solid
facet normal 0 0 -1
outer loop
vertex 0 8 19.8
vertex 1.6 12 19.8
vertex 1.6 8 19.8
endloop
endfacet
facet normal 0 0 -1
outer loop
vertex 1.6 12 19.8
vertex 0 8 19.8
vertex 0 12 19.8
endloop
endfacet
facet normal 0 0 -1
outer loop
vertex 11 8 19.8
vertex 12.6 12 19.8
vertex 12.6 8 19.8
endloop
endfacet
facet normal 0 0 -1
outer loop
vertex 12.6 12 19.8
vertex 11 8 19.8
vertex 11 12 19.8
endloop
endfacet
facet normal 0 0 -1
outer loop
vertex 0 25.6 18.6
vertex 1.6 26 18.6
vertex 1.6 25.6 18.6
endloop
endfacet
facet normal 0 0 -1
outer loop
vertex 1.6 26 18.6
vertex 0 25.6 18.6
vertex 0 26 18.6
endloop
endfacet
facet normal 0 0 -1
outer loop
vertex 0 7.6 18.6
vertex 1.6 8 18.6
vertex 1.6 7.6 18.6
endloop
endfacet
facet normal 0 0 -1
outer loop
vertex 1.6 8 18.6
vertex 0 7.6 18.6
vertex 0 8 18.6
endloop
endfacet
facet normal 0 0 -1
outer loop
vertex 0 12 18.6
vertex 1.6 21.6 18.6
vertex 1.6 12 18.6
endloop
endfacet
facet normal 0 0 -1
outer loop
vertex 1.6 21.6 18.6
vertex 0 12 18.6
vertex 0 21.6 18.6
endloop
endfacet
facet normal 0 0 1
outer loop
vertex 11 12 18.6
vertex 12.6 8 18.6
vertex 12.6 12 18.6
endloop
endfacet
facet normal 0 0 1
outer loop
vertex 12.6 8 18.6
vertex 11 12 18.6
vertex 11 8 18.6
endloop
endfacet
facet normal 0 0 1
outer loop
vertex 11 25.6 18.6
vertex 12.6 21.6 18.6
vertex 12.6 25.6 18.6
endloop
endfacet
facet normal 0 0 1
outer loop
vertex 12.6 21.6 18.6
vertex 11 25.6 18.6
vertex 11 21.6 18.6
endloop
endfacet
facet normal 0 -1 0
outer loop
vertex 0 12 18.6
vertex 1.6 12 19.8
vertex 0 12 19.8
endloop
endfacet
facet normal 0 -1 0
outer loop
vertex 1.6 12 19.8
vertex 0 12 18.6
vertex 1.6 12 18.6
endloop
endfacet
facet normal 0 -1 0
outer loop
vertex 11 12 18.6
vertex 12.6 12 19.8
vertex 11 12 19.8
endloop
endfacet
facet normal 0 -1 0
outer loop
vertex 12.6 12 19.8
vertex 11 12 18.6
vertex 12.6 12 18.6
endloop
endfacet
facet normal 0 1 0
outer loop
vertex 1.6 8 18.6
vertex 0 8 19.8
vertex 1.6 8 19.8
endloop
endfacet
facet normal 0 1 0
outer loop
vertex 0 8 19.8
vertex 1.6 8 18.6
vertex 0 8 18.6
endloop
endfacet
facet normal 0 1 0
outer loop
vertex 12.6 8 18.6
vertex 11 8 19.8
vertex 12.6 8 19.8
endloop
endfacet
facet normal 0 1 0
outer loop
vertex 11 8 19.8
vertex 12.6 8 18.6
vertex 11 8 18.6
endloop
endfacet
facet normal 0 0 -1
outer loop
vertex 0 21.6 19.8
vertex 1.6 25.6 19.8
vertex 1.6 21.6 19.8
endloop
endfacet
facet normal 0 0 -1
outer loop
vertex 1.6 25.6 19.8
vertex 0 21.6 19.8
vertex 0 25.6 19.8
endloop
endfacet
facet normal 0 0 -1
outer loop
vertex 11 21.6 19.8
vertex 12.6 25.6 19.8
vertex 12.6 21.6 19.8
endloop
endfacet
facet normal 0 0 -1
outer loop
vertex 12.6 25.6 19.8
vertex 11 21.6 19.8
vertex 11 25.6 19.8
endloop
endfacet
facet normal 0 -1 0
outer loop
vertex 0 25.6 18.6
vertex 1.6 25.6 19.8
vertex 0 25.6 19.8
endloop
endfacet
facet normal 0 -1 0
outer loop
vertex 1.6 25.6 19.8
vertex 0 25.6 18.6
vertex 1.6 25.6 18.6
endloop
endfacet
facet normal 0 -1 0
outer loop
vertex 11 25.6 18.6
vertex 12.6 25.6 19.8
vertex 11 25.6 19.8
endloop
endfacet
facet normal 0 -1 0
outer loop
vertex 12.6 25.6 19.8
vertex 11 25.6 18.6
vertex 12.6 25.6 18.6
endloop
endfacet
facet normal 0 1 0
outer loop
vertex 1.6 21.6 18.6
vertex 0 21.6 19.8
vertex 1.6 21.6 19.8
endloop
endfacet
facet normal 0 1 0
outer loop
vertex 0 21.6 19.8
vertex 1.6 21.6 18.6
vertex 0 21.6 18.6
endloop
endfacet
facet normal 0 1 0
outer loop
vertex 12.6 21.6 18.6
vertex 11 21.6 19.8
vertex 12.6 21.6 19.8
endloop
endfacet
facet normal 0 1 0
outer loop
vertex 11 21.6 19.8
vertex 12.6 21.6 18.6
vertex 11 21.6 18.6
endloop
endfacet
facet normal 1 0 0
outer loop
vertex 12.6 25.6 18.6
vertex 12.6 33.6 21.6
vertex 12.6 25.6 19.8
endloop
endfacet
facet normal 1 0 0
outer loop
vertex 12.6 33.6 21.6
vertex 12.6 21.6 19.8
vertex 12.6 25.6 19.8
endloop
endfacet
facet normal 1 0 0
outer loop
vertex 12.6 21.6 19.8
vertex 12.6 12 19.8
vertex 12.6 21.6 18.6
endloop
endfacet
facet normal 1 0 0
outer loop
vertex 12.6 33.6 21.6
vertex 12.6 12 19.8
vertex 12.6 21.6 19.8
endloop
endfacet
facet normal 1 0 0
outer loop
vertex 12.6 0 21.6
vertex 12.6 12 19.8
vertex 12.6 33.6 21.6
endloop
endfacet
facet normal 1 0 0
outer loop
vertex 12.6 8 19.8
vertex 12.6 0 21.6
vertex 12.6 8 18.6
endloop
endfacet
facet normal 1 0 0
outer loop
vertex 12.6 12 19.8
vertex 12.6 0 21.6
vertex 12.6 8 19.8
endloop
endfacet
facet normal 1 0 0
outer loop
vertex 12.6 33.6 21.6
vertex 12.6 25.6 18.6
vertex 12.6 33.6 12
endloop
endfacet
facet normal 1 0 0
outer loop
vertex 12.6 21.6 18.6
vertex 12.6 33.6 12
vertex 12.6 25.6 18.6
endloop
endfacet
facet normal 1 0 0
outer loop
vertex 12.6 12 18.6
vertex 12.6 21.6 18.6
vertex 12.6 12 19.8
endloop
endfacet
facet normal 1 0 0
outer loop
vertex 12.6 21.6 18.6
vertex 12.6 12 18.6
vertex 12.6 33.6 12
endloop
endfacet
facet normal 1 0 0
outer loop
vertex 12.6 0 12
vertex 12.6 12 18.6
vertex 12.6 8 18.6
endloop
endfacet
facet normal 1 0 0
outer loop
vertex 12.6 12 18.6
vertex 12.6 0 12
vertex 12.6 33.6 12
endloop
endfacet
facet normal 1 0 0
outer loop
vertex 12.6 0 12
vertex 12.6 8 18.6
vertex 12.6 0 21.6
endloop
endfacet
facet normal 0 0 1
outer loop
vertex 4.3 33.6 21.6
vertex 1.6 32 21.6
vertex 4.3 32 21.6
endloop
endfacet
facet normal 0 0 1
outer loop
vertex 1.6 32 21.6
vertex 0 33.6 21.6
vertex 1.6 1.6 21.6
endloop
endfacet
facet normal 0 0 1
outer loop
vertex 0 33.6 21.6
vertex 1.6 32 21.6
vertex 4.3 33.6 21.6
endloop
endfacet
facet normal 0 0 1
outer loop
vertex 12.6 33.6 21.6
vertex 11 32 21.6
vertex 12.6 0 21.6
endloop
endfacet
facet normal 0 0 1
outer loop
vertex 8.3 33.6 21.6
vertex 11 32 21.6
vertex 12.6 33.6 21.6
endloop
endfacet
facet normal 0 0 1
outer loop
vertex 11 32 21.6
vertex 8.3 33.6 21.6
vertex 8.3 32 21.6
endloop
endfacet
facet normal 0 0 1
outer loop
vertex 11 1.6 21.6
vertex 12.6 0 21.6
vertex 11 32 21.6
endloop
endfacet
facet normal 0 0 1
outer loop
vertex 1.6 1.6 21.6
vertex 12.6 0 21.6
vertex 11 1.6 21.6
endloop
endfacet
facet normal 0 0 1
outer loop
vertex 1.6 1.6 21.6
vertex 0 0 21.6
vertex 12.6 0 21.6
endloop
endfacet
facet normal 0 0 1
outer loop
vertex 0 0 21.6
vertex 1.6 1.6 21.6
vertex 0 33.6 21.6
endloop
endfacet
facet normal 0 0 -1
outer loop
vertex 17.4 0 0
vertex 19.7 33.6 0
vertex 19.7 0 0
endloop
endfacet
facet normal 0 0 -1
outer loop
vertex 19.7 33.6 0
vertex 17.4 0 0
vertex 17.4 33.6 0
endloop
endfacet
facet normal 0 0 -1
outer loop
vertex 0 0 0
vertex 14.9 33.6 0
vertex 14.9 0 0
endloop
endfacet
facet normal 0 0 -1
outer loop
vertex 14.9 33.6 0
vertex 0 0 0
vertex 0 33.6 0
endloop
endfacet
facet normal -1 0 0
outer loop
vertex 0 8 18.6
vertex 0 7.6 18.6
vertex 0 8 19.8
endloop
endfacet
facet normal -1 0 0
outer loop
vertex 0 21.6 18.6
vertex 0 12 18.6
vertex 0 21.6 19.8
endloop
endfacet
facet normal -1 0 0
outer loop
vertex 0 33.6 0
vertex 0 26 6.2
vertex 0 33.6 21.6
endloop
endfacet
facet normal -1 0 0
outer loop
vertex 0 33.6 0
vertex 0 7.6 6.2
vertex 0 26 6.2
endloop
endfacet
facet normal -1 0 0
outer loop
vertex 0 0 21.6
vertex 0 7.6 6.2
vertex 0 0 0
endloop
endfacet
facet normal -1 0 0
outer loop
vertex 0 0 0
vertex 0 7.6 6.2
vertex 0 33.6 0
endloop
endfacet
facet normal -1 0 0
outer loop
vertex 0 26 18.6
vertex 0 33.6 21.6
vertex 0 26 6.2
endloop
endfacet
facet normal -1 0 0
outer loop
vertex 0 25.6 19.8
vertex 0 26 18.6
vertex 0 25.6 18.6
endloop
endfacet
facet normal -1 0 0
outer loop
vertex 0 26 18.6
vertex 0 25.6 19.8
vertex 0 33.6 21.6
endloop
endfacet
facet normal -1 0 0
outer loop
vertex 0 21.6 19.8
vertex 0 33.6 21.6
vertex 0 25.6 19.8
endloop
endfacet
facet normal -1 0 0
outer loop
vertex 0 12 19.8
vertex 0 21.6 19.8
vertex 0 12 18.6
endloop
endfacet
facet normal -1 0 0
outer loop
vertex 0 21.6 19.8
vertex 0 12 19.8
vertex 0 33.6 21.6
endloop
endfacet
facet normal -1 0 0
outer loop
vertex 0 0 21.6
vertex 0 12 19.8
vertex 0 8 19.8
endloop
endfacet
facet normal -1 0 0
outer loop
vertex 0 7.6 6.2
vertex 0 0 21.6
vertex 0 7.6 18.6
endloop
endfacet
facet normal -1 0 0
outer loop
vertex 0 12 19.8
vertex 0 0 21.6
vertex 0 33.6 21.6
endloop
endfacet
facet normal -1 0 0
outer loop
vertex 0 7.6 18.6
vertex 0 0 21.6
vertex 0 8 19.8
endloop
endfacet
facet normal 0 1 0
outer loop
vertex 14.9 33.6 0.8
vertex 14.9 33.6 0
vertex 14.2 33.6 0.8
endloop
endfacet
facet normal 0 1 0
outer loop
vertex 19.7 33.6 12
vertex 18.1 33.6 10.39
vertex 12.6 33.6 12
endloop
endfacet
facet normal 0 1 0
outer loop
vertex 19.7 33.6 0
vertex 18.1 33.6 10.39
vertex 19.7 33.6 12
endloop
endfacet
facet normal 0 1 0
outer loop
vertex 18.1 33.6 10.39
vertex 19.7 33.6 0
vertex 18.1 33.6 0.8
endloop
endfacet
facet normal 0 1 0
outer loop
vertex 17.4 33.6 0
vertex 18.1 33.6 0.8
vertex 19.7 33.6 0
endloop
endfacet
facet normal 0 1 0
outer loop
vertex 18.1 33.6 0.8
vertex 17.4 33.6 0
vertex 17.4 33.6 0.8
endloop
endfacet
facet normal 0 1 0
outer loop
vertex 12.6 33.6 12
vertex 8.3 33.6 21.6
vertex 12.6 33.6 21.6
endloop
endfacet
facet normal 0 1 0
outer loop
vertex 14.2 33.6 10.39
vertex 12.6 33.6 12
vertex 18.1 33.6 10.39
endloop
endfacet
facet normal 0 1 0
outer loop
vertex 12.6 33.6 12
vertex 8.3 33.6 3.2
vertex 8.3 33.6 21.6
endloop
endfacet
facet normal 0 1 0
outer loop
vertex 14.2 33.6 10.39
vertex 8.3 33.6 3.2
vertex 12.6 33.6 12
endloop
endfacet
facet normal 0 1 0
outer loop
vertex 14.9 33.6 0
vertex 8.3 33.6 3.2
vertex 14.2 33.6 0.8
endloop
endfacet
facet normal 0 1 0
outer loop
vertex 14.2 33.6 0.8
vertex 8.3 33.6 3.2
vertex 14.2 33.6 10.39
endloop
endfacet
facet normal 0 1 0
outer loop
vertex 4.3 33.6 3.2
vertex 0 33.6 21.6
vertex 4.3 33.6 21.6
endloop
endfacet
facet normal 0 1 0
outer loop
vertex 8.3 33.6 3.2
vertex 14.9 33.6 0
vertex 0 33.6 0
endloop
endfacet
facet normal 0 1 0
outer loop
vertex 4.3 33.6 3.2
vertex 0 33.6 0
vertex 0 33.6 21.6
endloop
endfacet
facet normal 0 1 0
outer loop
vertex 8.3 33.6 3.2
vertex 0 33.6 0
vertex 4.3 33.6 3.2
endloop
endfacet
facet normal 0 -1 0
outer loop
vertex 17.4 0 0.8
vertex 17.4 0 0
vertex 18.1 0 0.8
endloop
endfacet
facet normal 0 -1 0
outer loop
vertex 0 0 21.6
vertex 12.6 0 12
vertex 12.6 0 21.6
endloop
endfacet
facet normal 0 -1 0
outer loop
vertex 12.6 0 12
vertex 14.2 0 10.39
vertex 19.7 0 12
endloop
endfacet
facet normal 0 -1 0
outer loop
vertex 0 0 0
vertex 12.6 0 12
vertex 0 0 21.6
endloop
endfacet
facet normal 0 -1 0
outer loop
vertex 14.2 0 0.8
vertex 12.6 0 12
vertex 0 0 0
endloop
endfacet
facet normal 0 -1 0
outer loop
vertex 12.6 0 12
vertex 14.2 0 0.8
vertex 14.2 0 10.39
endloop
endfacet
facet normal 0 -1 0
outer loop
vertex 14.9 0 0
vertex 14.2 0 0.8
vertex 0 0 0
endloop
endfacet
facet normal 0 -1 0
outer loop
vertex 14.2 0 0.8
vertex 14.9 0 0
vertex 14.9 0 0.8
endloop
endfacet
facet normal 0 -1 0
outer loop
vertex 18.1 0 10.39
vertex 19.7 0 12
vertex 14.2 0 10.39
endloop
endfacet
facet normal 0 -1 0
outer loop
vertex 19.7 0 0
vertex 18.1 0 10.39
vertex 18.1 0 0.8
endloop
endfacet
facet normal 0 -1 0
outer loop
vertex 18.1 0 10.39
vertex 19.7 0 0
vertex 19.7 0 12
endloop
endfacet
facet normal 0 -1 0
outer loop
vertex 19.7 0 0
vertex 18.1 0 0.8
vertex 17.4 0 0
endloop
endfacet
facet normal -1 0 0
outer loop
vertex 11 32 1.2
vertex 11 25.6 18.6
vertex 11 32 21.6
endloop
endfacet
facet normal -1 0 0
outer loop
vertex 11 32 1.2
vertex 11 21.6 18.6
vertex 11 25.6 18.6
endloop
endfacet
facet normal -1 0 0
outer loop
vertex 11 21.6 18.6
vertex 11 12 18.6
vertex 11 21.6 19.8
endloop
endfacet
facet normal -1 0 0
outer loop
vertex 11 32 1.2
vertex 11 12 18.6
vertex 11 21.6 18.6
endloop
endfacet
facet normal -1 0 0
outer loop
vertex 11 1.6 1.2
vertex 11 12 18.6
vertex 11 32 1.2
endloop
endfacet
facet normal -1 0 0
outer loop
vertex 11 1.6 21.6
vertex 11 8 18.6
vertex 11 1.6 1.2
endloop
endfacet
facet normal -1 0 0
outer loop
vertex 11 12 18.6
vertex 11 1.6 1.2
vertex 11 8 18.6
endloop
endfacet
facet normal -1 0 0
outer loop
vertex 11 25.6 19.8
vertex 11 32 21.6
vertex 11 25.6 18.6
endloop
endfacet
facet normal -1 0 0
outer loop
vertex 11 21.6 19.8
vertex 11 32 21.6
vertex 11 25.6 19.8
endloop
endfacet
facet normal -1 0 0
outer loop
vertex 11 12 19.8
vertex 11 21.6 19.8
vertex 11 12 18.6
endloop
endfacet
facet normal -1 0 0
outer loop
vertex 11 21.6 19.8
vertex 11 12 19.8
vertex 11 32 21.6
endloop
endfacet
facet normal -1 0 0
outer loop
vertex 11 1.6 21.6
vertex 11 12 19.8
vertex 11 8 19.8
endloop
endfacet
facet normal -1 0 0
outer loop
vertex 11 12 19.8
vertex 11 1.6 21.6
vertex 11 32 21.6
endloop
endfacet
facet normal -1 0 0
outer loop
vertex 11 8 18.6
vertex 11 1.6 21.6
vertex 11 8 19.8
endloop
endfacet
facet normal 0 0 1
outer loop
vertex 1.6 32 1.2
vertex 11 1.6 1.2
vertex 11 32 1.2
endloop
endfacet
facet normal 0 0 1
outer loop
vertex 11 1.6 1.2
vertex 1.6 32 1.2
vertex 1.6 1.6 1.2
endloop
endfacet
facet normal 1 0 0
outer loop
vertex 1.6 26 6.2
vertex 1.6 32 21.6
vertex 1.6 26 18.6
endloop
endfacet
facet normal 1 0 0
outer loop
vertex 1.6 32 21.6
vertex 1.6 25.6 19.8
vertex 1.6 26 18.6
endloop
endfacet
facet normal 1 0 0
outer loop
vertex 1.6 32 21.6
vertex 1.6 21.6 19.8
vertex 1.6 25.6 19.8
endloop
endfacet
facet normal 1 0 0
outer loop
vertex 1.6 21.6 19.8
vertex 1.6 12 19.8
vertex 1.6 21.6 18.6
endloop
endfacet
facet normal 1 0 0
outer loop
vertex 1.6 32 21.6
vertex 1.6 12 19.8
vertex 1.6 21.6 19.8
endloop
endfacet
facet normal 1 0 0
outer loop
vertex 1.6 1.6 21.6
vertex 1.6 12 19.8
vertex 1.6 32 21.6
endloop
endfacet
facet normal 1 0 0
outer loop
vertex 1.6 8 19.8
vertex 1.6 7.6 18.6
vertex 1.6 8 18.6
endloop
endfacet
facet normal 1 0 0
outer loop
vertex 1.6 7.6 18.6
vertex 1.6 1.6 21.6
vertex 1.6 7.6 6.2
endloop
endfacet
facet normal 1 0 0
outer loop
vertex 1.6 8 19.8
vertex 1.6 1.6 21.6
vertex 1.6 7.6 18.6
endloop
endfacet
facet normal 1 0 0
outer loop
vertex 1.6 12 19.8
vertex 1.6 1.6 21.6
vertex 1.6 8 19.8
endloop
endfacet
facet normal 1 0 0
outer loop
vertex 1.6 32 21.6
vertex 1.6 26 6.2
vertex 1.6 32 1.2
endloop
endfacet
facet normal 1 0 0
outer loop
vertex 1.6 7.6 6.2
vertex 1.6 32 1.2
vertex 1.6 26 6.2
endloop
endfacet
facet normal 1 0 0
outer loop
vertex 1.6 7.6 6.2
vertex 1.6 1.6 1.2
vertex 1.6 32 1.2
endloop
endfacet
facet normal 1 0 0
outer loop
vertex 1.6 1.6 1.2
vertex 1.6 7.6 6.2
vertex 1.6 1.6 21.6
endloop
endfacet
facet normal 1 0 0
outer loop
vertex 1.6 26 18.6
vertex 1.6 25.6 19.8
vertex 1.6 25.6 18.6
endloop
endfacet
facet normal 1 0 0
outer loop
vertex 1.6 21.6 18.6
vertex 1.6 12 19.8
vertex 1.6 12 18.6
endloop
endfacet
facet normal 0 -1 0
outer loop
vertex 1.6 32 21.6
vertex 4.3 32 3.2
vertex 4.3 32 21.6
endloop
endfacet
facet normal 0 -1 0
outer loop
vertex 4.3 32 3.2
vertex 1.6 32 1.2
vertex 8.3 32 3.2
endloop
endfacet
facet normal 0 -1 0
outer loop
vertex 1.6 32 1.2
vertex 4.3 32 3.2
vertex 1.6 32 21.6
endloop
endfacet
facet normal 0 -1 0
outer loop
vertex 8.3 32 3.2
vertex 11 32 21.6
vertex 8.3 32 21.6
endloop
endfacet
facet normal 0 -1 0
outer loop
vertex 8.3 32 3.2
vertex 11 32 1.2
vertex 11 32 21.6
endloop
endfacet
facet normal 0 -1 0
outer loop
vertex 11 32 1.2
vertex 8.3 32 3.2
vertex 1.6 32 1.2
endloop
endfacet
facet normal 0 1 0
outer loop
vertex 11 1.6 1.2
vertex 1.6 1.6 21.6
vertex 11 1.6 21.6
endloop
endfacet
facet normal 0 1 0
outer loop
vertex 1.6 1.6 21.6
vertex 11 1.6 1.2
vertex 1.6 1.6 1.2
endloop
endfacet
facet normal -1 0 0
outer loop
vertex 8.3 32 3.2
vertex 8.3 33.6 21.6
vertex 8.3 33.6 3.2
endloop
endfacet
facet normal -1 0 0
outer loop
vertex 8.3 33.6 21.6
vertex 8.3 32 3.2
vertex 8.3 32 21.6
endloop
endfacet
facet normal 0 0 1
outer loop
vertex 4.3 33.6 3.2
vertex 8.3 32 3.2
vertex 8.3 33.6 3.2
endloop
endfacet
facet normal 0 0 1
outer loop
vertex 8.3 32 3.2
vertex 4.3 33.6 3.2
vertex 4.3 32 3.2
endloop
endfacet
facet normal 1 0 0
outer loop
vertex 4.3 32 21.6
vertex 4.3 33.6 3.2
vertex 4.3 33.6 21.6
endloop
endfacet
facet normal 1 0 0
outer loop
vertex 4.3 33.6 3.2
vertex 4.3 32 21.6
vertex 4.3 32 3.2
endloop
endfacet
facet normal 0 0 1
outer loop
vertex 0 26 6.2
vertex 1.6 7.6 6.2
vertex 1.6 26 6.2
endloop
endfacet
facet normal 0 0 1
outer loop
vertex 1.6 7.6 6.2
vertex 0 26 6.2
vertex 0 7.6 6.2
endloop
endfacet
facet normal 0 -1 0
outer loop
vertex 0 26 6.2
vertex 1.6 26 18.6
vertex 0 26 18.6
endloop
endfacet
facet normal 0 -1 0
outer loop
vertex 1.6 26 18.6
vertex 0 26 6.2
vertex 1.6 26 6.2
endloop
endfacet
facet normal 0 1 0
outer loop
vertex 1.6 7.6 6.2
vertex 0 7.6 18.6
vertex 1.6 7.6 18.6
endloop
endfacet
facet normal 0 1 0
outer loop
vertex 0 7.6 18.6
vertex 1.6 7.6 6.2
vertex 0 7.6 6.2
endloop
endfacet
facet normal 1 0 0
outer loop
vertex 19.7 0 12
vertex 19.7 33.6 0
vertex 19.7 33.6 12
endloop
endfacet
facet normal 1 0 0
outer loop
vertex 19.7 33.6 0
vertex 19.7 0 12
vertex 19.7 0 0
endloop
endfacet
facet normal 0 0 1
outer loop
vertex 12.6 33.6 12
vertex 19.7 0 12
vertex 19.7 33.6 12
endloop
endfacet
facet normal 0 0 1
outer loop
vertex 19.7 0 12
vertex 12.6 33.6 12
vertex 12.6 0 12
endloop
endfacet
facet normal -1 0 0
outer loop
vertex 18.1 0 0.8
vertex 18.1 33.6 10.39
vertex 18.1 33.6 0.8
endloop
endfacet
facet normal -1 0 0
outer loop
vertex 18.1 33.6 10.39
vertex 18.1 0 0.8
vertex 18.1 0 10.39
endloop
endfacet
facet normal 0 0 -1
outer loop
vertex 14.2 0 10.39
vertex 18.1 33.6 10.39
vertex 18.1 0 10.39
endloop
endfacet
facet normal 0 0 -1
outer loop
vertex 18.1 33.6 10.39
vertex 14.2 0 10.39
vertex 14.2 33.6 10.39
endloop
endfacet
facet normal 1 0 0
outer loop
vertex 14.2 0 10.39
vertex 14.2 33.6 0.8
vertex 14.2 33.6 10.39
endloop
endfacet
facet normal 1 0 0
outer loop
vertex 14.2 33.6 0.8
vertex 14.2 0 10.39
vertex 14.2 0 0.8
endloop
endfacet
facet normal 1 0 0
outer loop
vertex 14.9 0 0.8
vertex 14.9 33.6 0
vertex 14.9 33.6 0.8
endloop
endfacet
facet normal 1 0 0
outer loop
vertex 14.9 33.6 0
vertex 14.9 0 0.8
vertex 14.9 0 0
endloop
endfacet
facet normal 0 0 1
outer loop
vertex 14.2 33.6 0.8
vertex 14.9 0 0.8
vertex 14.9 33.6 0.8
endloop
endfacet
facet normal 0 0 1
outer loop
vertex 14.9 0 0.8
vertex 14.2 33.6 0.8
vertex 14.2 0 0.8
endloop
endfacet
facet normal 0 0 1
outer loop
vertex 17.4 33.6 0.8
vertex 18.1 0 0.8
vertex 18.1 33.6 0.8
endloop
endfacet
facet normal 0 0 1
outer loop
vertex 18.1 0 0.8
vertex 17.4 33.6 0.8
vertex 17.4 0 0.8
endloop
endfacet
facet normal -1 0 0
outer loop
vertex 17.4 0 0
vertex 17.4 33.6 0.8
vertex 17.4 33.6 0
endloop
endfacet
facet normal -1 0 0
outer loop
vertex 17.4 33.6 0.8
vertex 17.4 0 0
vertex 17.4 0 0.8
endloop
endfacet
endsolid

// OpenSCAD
// battery_clip.scad
// Left temple arm cradle for an 802030 LiPo, 400 mAh (counterweight).
// Battery stands on its long edge next to the arm. Pocket open on top.
// Print as is: arm clip opening on the bed. No supports.
// Frame: Y along the arm, Z up, +X is toward the head on the LEFT arm.
// Tags: [know] from specs, [inferred] estimate, [don't know] measure it.

bat_t   = 8;     // 802030 cell. [know] about
bat_w   = 20;    // stands up (Z). [know] about
bat_l   = 30;    // along the arm (Y). [know] about
swell   = 1;     // extra room for LiPo swelling. [know]
fit     = 0.4;
wall    = 1.6;
floor_t = 1.2;
arm_w   = 10;    // [don't know] measure it
arm_t   = 3.5;   // [don't know] measure it
clip_fit = 0.4;
lip     = 0.7;
cable_w = 4.0;   // JST-PH 2.0 lead channel. [inferred]

$fn = 48;

px = bat_t + swell + fit;   // 9.4
py = bat_l + fit;
pz = bat_w + fit;
cw = arm_t + clip_fit; ch = arm_w + clip_fit;
L  = py + 2*wall;
H  = pz + floor_t;
cx0 = px + 2*wall;          // clip on the +X side (toward the head)

module arm_clip() {
  difference() {
    translate([cx0, 0, 0]) cube([cw + 2*wall, L, ch + wall]);
    translate([cx0 + wall, -1, -0.01]) cube([cw, L + 2, ch]);
  }
  for (s = [0, 1]) translate([cx0 + wall + s*(cw - lip), 0, 0]) cube([lip, L, 0.8]);
}

module cradle() {
  difference() {
    cube([px + 2*wall, L, H]);
    translate([wall, wall, floor_t]) cube([px, py, H]);
    // cable channel: slot down the back end wall and out the bottom
    translate([wall + px/2 - cable_w/2, L - wall - 1, floor_t + 2]) cube([cable_w, wall + 2, H]);
    // window in the outer wall: see swelling, saves weight
    translate([-1, wall + 6, floor_t + 5]) cube([wall + 2, py - 12, pz - 8]);
    // strap notches at the top for a rubber band or tape
    for (y = [8, L - 12]) translate([-1, y, H - 3]) cube([px + 2*wall + 2, 4, 1.2]);
  }
}

union() { cradle(); arm_clip(); }
